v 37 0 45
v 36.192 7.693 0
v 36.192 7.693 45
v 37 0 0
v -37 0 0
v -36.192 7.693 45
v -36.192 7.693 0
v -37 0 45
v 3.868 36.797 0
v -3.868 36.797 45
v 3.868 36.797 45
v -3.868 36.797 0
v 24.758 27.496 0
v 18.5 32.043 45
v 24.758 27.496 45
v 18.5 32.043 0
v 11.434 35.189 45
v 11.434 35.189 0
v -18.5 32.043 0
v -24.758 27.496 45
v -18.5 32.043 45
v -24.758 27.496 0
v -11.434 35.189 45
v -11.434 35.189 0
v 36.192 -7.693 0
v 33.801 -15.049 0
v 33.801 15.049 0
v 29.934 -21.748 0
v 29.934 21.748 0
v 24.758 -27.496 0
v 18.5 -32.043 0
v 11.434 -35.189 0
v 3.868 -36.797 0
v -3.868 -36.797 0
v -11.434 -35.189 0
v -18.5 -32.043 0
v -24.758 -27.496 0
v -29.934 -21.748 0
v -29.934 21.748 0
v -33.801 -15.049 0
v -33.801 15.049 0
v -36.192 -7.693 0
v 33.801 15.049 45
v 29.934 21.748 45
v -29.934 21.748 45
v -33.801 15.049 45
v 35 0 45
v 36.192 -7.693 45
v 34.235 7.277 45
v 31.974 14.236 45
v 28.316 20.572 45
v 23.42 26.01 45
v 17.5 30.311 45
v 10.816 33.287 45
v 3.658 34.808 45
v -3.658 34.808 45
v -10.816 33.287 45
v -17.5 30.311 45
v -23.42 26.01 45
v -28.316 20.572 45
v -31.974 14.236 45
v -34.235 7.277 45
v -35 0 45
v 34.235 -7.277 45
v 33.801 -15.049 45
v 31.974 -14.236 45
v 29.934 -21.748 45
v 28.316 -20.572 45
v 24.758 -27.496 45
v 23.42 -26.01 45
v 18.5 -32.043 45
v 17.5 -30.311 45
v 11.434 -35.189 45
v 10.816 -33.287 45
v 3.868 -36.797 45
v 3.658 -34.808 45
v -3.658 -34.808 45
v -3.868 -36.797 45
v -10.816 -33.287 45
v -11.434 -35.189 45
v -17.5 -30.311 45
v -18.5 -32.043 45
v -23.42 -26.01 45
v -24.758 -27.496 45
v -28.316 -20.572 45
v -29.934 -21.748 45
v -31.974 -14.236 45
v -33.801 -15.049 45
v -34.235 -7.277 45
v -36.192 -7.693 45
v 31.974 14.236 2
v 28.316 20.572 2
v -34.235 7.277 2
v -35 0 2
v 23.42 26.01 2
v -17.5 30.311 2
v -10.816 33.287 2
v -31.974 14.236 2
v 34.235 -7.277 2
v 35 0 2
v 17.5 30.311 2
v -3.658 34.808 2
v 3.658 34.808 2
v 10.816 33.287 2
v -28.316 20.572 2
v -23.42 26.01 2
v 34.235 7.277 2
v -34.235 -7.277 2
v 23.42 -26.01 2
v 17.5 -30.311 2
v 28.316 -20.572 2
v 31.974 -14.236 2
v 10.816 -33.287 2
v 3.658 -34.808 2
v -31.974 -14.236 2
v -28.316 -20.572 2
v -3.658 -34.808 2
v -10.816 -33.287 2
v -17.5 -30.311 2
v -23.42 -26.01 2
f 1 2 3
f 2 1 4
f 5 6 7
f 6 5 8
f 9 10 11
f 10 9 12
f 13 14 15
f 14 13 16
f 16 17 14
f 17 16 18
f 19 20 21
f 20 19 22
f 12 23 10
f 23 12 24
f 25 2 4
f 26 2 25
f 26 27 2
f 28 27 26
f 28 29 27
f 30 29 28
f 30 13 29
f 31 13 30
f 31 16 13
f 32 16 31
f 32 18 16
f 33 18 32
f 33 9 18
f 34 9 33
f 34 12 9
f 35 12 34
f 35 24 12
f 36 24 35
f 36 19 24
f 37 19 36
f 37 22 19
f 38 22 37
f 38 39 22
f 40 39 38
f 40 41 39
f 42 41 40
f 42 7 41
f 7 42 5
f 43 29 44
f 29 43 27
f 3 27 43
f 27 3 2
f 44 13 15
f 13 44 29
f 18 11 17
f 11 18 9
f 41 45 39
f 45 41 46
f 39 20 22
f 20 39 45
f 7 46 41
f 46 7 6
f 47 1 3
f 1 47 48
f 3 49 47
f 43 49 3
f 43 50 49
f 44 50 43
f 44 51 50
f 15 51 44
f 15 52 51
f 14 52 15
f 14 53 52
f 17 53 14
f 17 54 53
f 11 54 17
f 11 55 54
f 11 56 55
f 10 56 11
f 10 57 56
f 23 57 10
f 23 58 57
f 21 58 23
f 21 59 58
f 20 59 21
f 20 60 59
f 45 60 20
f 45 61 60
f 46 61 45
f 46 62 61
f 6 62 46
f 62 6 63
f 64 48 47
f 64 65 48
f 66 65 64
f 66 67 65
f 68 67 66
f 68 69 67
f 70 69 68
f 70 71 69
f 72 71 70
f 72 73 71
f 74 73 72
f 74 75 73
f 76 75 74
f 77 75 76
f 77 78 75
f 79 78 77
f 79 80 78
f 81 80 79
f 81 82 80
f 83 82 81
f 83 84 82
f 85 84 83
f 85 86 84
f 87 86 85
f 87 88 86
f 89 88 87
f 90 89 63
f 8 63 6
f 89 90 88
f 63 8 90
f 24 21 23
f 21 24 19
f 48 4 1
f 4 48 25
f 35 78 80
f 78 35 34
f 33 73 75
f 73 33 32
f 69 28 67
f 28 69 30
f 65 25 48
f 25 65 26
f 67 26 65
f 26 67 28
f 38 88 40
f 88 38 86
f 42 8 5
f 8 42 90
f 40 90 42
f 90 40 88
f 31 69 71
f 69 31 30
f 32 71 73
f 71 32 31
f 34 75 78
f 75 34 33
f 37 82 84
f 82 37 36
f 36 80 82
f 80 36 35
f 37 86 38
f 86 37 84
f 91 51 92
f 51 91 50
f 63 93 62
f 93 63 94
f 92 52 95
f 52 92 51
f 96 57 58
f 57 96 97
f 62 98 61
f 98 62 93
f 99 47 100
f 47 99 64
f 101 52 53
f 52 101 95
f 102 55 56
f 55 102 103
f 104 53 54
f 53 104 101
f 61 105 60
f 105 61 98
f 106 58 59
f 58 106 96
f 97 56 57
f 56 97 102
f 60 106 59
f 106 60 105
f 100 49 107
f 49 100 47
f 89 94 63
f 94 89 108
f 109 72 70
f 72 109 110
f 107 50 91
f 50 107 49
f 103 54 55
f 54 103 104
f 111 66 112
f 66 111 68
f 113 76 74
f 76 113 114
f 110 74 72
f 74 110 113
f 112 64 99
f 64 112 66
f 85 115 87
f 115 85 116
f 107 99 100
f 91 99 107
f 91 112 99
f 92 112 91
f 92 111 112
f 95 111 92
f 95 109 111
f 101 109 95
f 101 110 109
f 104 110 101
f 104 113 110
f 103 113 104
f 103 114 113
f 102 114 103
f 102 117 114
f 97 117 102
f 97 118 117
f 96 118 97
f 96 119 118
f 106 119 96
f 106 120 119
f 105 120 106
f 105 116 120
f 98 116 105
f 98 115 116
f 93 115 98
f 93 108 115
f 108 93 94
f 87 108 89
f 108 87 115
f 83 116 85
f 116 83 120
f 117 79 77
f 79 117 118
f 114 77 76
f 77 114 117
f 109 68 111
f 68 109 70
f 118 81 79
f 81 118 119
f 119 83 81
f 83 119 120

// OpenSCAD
difference() {
	cylinder(r=35+2,h=45);
	
	translate([0,0,2])
	cylinder(r=35,h=45+1);
}
